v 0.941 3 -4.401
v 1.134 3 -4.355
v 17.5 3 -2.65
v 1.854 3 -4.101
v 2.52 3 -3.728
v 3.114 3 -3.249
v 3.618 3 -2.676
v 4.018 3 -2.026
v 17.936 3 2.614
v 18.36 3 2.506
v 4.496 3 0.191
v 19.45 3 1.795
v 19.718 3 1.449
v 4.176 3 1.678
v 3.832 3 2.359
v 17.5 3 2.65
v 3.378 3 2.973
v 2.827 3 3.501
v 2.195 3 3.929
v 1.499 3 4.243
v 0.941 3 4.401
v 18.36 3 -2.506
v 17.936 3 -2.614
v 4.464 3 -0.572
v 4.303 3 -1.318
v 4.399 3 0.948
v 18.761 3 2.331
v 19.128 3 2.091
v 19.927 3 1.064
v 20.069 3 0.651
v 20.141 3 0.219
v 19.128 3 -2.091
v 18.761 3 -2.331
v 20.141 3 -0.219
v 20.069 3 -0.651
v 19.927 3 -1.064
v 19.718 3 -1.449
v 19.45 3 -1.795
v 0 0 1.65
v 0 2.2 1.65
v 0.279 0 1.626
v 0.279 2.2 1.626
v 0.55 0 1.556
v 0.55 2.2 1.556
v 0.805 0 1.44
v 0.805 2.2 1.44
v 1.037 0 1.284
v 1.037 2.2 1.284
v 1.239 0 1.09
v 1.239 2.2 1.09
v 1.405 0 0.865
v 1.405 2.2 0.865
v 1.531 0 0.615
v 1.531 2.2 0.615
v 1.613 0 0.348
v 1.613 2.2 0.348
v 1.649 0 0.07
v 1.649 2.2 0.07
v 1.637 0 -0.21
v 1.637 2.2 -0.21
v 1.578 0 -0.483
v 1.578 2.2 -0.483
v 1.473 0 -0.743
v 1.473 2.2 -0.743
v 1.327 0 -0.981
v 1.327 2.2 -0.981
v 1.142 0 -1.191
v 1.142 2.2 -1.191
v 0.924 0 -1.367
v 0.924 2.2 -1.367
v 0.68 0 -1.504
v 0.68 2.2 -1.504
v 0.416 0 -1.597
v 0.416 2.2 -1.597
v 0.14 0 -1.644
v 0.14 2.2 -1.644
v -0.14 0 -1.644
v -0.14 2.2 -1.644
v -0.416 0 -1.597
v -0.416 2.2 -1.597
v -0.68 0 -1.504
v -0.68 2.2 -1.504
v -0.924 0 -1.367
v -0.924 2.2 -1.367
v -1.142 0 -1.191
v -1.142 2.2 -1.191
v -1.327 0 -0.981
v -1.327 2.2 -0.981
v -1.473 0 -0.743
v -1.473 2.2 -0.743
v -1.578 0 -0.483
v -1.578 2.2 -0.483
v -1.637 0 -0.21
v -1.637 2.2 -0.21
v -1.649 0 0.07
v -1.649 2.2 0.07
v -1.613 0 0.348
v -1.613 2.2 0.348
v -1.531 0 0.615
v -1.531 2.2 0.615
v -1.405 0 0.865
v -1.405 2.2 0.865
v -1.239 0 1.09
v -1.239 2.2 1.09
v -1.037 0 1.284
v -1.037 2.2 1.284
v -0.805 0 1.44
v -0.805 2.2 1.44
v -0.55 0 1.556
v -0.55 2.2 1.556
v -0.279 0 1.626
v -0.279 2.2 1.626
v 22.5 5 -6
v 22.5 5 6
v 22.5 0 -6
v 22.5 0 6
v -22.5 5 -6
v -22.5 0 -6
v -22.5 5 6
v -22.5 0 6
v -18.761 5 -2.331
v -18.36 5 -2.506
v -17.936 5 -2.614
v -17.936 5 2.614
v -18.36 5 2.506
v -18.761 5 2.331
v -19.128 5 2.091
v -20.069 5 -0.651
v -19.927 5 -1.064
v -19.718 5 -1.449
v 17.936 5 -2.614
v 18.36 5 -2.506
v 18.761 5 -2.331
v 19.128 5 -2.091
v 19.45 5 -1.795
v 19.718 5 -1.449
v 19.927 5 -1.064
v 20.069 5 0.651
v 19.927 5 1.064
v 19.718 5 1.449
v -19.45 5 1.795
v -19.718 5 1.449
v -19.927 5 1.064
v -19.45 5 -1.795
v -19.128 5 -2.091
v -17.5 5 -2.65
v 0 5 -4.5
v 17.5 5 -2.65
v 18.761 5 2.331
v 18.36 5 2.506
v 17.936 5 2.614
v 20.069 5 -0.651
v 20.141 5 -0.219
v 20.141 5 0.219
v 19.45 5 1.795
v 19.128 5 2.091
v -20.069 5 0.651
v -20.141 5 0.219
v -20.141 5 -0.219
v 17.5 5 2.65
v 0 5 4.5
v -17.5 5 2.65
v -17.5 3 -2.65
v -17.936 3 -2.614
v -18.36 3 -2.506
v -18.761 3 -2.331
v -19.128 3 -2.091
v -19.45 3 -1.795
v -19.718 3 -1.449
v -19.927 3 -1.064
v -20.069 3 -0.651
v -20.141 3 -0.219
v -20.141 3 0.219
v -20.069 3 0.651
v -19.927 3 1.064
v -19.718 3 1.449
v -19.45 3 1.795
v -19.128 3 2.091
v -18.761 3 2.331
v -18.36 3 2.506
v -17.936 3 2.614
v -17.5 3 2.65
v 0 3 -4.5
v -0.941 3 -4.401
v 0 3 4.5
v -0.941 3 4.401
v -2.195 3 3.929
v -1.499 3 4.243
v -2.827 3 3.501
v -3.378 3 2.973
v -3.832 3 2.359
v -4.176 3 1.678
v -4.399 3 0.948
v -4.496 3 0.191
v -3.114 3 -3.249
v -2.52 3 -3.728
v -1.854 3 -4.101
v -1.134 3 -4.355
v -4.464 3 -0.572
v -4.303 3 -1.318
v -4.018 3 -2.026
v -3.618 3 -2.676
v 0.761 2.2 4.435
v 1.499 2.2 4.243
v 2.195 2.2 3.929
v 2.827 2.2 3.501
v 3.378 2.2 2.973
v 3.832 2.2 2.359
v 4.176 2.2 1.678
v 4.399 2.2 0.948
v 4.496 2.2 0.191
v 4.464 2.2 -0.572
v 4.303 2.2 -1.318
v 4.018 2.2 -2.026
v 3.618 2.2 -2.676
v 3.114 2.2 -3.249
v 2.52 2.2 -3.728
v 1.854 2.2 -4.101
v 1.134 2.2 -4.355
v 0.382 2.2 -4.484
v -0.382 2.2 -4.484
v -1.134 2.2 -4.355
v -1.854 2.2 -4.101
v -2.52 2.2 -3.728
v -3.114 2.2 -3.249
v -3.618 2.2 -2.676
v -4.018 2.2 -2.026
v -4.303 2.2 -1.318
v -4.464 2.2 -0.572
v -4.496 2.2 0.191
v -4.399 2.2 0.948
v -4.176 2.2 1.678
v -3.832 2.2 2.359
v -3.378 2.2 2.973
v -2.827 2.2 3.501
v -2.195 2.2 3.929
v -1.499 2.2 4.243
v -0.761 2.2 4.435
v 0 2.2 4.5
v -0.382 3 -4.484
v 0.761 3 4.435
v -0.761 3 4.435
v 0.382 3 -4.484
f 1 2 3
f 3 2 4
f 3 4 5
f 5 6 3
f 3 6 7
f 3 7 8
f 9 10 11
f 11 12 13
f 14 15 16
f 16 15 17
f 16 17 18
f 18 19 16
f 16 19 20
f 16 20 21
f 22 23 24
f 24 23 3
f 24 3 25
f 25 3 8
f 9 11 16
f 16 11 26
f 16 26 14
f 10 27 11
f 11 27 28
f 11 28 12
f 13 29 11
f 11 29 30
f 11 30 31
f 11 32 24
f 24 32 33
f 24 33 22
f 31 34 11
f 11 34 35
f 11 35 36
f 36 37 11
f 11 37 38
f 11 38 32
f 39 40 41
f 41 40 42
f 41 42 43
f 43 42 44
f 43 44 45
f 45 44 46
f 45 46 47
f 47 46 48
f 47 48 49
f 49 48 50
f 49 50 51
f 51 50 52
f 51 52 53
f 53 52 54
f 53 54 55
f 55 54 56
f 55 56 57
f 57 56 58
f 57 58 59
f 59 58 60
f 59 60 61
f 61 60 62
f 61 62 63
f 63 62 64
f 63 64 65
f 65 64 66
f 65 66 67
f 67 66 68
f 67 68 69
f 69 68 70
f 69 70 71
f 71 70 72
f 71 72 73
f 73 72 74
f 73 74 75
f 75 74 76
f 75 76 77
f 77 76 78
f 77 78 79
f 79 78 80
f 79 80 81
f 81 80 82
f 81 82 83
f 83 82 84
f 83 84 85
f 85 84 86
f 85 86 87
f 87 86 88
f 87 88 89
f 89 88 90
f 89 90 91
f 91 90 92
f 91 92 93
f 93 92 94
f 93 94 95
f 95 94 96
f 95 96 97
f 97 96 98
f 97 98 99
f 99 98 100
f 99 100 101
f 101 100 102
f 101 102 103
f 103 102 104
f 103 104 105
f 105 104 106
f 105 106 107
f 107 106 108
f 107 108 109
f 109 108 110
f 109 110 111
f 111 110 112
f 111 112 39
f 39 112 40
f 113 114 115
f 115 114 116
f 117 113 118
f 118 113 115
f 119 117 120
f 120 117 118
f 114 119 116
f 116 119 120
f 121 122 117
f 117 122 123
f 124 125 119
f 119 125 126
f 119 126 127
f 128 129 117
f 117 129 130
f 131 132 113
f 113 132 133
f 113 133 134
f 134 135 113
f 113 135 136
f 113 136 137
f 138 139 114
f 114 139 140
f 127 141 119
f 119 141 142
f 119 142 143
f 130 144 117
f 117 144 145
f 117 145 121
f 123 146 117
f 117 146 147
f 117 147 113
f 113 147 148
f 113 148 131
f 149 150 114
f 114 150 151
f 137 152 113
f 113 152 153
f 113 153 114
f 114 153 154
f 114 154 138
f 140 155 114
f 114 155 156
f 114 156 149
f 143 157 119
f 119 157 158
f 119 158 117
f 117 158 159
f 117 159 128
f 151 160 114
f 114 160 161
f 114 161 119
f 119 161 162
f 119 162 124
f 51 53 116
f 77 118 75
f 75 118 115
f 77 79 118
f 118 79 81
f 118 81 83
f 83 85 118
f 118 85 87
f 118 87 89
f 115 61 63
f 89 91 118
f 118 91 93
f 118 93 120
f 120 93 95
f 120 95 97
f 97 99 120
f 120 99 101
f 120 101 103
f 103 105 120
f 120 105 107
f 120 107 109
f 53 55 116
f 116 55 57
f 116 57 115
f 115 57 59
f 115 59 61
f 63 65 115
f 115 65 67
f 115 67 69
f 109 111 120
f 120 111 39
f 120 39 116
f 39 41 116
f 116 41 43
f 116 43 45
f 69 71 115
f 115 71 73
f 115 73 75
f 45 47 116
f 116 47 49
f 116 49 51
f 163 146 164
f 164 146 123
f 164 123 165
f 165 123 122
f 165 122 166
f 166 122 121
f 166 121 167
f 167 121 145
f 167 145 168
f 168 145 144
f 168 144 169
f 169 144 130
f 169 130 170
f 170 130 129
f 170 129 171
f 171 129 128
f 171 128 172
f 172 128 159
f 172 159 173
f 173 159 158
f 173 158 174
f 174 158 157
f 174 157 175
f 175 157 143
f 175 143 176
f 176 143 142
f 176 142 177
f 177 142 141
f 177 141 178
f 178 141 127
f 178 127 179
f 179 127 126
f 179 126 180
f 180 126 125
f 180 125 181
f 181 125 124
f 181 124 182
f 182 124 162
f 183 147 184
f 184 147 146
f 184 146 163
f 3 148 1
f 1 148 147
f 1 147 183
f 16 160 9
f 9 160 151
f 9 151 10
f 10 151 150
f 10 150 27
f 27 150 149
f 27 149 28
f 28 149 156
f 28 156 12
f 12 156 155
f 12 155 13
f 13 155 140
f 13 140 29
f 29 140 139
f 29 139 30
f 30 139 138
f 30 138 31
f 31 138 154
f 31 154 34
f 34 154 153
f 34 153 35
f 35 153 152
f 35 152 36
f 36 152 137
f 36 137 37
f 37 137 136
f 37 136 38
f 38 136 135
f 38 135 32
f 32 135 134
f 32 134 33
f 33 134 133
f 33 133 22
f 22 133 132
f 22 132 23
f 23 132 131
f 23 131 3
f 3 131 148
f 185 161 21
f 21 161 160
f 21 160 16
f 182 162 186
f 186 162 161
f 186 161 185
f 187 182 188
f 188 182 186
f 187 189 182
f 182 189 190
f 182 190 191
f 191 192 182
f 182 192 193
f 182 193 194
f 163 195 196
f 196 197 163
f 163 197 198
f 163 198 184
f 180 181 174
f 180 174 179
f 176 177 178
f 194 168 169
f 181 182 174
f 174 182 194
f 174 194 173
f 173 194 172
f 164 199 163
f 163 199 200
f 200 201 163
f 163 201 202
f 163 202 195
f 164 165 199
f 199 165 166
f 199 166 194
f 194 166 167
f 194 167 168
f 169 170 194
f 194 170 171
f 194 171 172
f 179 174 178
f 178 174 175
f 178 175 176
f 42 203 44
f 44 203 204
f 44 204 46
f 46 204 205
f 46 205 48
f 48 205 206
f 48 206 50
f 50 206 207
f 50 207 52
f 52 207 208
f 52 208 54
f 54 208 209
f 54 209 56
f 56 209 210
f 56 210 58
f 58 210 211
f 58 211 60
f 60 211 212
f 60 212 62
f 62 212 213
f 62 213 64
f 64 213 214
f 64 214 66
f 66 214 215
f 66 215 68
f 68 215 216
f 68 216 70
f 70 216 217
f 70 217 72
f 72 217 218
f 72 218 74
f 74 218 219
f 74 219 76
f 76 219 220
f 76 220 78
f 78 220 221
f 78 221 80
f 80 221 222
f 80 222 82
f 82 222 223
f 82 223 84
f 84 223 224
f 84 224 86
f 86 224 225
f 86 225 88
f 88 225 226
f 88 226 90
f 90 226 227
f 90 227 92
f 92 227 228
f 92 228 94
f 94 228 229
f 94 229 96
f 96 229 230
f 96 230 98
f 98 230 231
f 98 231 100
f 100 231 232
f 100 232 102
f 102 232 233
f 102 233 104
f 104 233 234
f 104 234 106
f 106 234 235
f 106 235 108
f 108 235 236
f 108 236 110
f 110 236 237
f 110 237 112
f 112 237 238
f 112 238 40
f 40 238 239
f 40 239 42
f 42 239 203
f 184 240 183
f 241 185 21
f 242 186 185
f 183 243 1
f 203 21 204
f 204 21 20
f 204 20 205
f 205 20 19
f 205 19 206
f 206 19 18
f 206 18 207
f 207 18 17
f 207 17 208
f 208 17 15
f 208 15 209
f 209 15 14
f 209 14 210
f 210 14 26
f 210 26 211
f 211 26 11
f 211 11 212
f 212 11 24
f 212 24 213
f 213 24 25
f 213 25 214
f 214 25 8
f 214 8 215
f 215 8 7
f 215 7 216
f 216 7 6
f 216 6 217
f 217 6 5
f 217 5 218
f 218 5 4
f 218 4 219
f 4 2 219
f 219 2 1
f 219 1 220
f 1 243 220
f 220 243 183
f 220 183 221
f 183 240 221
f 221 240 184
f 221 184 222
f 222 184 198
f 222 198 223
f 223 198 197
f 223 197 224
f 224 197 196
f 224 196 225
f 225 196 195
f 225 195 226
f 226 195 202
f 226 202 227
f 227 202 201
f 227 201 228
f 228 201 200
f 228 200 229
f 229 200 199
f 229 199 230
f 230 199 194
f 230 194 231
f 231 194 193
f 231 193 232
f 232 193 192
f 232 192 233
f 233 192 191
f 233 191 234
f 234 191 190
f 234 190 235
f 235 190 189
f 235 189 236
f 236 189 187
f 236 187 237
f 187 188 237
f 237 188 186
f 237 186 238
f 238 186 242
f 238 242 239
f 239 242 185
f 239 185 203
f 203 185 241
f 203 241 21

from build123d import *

# Parameters (mm, degrees)
SKETCH1_W           = 45
SKETCH1_H           = 12
BOSS_EXTRUDE1_DEPTH = 5
SKETCH2_R           = 2.65
CUT_EXTRUDE1_DEPTH  = 2
SKETCH3_R           = 1.65
CUT_EXTRUDE2_DEPTH  = 12
SKETCH4_R           = 4.5
CUT_EXTRUDE3_DEPTH  = 0.8


with BuildPart() as part:
    # Sketch1 → Boss-Extrude1 (new body)
    with BuildSketch(Plane(origin=(0, 0, 0), x_dir=(1, 0, 0), z_dir=(0, 1, 0))):
        Rectangle(SKETCH1_W, SKETCH1_H)
    extrude(amount=BOSS_EXTRUDE1_DEPTH)

    # Sketch2 → Cut-Extrude1 (cut)
    with BuildSketch(Plane(origin=(0, 5, 0), x_dir=(1, 0, 0), z_dir=(0, 1, 0))):
        with Locations((-17.5, 0)):
            Circle(SKETCH2_R)
        with BuildLine():
            Line((-0.940913384, 4.400532014), (-17.5, 2.65))
            ThreePointArc((-17.5, 2.65), (-15.62616703, 1.87383297), (-14.85, 0))
            ThreePointArc((-14.85, 0), (-15.62616703, -1.87383297), (-17.5, -2.65))
            Line((-17.5, -2.65), (-0.940913384, -4.400532014))
            ThreePointArc((-0.940913384, -4.400532014), (-4.5, 0), (-0.940913384, 4.400532014))
        make_face()
        with BuildLine():
            Line((0, 4.5), (-0.940913384, 4.400532014))
            ThreePointArc((-0.940913384, 4.400532014), (-4.5, 0), (-0.940913384, -4.400532014))
            Line((-0.940913384, -4.400532014), (0, -4.5))
            Line((0, -4.5), (0.940913384, -4.400532014))
            ThreePointArc((0.940913384, -4.400532014), (3.498864832, -2.829831247), (4.5, 0))
            ThreePointArc((4.5, 0), (3.498864832, 2.829831247), (0.940913384, 4.400532014))
            Line((0.940913384, 4.400532014), (0, 4.5))
        make_face()
        with BuildLine():
            Line((17.5, 2.65), (0.940913384, 4.400532014))
            ThreePointArc((0.940913384, 4.400532014), (3.498864832, 2.829831247), (4.5, 0))
            ThreePointArc((4.5, 0), (3.498864832, -2.829831247), (0.940913384, -4.400532014))
            Line((0.940913384, -4.400532014), (17.5, -2.65))
            ThreePointArc((17.5, -2.65), (14.85, 0), (17.5, 2.65))
        make_face()
        with Locations((17.5, 0)):
            Circle(SKETCH2_R)
    extrude(amount=-CUT_EXTRUDE1_DEPTH, mode=Mode.SUBTRACT)

    # Sketch3 → Cut-Extrude2 (cut)
    with BuildSketch(Plane(origin=(0, 3, 0), x_dir=(1, 0, 0), z_dir=(0, 1, 0))):
        with Locations(Location((0, 0, 0), (0, 0, 270))):
            Circle(SKETCH3_R)
    extrude(amount=-CUT_EXTRUDE2_DEPTH, mode=Mode.SUBTRACT)

    # Sketch4 → Cut-Extrude3 (cut)
    with BuildSketch(Plane(origin=(0, 3, 0), x_dir=(1, 0, 0), z_dir=(0, 1, 0))):
        with Locations(Location((0, 0, 0), (0, 0, 270))):
            Circle(SKETCH4_R)
    extrude(amount=-CUT_EXTRUDE3_DEPTH, mode=Mode.SUBTRACT)


solid = part.part
